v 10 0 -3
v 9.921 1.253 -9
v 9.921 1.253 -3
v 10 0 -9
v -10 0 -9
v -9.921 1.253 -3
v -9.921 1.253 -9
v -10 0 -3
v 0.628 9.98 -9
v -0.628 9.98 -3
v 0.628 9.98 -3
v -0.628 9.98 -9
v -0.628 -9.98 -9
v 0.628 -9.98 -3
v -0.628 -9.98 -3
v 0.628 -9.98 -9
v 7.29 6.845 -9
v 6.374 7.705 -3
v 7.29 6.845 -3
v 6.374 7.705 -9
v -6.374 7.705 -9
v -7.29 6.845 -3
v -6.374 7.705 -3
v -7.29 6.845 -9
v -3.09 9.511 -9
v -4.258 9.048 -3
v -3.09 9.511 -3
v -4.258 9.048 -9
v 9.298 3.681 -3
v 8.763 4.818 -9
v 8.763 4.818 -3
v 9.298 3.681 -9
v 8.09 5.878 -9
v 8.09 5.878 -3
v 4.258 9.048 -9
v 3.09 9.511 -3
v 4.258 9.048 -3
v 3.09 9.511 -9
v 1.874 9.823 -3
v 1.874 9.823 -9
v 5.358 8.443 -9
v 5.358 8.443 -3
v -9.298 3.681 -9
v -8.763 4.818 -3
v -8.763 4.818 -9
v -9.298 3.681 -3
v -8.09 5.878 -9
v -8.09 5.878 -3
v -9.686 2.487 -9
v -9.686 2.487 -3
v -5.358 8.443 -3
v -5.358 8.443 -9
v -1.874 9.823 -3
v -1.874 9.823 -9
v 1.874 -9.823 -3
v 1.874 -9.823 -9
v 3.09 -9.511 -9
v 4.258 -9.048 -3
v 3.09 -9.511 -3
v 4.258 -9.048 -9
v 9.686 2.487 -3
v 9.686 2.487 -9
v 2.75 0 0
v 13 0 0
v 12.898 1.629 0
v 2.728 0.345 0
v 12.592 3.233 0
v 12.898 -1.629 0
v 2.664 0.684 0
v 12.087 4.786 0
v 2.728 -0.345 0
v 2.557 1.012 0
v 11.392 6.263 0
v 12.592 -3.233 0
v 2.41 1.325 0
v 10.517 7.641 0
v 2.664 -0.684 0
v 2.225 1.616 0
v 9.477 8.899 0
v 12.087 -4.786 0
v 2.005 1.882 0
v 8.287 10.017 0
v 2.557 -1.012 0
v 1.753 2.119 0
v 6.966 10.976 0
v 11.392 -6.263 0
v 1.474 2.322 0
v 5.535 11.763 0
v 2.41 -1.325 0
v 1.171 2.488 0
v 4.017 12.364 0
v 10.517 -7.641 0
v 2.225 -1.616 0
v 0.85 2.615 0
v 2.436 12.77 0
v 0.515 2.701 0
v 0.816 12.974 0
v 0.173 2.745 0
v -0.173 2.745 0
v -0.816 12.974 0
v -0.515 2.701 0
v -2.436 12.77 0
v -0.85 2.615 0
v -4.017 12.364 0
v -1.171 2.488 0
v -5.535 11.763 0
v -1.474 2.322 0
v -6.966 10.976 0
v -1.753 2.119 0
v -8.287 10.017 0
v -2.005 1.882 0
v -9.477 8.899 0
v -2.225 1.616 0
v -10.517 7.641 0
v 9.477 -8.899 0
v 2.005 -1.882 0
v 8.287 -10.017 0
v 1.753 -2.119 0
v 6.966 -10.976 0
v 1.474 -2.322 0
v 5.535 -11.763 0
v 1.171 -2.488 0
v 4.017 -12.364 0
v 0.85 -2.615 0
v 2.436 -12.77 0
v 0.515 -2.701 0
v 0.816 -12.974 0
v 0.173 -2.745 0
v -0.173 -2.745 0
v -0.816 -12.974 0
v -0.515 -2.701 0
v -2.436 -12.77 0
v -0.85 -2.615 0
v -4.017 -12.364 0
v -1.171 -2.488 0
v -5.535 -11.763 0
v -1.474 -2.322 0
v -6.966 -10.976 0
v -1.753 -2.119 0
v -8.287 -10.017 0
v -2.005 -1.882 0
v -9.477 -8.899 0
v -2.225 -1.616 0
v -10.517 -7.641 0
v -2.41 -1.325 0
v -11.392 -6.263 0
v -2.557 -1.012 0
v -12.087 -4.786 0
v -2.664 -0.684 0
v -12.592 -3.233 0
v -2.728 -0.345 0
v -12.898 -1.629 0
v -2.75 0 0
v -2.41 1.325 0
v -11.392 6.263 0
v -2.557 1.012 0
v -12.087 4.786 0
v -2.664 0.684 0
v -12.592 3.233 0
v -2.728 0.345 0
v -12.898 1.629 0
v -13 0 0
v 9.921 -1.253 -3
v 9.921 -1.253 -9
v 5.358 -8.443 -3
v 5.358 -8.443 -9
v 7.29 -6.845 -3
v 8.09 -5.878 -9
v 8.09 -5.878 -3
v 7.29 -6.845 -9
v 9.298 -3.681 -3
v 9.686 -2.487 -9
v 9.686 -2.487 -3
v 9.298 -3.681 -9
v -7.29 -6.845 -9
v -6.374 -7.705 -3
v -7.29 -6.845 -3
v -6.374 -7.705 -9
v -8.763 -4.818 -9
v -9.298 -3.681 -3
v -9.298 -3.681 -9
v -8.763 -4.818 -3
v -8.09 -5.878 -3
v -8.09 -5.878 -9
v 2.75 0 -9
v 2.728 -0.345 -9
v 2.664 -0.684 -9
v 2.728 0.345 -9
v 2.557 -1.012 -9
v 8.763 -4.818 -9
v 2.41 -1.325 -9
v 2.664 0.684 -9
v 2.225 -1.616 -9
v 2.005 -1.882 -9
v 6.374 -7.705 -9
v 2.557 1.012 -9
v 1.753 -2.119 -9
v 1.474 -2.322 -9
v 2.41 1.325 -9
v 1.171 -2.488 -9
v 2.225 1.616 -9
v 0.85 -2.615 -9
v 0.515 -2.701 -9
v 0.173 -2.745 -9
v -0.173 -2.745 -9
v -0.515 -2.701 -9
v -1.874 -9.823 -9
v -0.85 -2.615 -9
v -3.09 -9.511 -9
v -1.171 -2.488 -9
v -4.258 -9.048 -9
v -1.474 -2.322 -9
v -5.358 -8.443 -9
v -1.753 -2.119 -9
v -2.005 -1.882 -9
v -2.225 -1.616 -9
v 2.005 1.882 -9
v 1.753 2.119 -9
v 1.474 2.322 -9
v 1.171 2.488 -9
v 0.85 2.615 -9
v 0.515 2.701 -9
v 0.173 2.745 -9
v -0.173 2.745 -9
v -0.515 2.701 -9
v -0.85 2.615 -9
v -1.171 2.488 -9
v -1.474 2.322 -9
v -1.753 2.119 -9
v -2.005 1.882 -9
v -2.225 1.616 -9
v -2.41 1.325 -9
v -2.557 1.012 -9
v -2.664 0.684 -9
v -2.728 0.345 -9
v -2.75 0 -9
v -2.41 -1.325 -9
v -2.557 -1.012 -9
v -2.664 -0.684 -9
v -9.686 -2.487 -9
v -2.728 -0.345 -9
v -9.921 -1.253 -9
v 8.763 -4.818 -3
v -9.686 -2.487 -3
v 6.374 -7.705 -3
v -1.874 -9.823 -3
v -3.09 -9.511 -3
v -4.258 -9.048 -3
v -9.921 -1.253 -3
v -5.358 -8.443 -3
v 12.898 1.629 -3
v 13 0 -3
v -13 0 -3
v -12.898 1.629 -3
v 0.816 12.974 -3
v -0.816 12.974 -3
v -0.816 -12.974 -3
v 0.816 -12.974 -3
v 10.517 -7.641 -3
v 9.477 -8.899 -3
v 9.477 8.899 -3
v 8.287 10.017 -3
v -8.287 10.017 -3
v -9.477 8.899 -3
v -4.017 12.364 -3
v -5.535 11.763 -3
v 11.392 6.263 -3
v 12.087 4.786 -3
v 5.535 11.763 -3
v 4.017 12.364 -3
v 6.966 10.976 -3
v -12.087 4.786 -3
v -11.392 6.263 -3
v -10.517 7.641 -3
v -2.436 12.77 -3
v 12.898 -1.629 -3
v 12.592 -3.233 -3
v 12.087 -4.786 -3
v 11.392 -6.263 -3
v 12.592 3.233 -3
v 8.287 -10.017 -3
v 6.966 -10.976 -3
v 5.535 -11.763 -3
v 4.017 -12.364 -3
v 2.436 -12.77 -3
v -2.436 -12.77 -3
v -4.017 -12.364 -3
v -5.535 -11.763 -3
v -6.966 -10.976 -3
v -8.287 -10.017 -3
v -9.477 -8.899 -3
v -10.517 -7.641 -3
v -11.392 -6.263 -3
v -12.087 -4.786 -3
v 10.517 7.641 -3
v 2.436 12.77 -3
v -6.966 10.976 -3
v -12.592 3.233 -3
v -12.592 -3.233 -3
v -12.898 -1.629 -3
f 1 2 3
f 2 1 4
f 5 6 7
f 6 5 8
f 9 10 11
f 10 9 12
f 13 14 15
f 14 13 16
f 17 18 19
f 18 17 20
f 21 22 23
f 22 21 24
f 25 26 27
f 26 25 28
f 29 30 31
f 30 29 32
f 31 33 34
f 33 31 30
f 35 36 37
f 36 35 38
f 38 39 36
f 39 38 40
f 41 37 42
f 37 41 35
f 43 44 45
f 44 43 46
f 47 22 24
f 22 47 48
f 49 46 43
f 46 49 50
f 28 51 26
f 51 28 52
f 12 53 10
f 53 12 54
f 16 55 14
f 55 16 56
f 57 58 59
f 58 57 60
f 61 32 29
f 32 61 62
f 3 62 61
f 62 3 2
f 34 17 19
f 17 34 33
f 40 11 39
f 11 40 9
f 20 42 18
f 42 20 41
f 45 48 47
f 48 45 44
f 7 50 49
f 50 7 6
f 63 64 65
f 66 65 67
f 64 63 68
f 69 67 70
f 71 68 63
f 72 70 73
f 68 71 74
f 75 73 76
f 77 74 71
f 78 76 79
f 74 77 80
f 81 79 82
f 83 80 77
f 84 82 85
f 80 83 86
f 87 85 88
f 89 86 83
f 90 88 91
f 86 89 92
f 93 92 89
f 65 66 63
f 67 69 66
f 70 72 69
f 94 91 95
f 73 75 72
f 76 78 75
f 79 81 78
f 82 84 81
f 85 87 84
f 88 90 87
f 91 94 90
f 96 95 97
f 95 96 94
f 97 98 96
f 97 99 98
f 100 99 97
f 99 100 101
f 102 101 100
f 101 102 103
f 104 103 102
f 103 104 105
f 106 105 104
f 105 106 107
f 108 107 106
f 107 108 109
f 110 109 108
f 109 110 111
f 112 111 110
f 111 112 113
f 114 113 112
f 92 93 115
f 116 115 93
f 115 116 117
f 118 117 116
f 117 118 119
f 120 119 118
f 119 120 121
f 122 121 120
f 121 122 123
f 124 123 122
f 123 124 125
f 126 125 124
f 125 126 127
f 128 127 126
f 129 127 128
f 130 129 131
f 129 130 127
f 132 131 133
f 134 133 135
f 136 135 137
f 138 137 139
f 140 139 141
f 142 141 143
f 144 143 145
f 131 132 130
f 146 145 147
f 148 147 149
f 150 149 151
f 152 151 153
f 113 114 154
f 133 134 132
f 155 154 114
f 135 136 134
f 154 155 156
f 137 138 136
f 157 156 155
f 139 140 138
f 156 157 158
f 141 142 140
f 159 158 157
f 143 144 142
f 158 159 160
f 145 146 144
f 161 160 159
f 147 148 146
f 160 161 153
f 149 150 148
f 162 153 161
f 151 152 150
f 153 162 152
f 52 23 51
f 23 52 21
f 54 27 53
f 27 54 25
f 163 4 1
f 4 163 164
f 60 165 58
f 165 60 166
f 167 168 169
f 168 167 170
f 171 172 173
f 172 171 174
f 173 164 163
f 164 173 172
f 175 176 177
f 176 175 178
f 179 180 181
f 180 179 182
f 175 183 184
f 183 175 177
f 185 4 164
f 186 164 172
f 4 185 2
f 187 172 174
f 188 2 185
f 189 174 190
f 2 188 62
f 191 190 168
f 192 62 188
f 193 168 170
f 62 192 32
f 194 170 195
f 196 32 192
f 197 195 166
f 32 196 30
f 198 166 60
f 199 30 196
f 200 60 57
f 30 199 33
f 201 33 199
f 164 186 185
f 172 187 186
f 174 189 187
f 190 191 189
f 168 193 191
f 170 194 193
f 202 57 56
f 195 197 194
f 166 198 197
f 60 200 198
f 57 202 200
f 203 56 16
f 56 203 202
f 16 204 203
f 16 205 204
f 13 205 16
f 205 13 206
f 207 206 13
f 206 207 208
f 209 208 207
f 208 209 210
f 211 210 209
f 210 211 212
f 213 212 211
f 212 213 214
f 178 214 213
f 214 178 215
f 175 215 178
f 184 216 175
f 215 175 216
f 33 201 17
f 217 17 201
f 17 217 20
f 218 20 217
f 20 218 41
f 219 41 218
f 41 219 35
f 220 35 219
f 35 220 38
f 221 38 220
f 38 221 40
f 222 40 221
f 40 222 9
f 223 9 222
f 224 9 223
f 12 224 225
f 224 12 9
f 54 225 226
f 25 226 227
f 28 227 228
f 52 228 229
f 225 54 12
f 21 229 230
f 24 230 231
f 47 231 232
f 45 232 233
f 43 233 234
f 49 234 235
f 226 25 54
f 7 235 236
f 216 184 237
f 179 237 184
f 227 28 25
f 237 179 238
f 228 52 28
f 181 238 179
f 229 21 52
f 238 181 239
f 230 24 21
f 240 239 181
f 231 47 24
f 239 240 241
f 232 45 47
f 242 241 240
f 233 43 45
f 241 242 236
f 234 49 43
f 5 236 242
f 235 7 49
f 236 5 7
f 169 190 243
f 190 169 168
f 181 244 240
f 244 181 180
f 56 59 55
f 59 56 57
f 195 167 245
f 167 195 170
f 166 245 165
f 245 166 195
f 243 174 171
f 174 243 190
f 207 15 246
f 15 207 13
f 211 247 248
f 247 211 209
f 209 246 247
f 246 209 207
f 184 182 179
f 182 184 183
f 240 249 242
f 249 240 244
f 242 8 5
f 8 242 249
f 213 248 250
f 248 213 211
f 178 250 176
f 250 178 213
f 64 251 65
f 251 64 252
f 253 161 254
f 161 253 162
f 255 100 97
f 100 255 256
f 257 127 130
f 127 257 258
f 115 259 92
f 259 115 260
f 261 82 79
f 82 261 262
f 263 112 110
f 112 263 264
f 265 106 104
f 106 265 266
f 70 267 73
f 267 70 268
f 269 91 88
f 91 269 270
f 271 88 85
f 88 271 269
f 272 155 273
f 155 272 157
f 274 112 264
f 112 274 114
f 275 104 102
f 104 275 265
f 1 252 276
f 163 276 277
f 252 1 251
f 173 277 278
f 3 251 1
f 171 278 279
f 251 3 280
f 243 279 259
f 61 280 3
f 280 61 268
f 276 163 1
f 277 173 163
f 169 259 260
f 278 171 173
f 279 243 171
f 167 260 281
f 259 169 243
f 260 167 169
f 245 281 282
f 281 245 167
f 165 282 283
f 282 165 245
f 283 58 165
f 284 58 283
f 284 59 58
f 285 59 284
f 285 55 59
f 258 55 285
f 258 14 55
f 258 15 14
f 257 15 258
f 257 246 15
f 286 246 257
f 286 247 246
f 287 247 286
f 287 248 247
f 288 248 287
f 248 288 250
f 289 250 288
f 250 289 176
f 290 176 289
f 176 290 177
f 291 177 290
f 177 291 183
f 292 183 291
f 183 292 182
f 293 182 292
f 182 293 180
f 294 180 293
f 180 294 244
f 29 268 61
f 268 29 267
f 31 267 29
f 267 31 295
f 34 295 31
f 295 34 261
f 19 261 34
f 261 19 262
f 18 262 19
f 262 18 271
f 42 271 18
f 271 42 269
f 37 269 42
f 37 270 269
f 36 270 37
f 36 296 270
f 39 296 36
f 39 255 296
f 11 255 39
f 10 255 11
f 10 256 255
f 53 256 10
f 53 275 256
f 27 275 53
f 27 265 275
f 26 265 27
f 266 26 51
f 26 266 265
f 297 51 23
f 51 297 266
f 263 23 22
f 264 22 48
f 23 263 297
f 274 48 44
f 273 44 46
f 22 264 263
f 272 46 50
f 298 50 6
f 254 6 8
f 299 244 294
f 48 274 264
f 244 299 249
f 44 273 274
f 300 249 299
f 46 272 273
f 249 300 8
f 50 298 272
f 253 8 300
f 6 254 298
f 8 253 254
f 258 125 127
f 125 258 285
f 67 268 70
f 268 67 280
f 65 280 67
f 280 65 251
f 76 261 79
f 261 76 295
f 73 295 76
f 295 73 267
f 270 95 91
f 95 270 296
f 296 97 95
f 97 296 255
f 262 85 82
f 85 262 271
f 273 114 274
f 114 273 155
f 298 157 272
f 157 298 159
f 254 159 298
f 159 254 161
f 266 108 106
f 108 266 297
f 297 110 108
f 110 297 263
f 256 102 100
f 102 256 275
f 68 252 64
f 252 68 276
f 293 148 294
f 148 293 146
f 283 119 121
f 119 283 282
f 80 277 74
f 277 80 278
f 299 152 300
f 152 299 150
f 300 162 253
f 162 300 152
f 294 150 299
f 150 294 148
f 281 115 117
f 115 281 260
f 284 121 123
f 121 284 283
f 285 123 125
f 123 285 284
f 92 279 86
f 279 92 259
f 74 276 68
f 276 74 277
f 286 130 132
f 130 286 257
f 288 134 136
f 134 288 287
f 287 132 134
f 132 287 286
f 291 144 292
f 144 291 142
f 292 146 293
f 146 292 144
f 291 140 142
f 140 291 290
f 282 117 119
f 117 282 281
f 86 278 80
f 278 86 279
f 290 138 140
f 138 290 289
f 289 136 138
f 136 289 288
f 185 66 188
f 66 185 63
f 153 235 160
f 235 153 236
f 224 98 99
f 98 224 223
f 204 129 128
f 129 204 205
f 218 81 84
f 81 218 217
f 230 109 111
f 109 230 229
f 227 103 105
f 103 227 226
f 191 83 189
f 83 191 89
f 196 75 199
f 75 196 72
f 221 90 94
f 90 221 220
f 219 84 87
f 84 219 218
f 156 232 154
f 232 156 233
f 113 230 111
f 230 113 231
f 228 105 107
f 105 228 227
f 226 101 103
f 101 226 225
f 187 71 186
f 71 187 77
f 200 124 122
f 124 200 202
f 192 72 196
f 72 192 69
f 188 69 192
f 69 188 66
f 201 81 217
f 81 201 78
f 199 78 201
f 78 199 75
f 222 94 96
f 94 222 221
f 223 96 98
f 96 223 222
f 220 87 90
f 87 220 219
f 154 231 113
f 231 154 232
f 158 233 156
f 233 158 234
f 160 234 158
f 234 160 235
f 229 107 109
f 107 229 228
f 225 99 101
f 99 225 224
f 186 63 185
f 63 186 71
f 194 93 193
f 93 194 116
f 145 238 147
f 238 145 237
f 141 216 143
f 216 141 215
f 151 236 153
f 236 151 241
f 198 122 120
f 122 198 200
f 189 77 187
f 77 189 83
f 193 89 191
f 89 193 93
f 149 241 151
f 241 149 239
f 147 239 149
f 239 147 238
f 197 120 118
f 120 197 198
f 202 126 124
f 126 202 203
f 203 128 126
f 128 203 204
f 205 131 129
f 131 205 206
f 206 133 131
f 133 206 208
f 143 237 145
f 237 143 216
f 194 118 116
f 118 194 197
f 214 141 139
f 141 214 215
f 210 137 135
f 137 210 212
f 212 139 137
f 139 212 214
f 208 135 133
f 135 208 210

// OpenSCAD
$fn = 50;


difference() {
	union() {
		translate(v = [0, 0, -9.0000000000]) {
			cylinder(h = 9, r = 10.0000000000);
		}
		translate(v = [0, 0, -3.0000000000]) {
			cylinder(h = 3, r = 13.0000000000);
		}
	}
	union() {
		#translate(v = [0, 0, -9]) {
			cylinder(h = 9, r = 2.7500000000);
		}
	}
}
